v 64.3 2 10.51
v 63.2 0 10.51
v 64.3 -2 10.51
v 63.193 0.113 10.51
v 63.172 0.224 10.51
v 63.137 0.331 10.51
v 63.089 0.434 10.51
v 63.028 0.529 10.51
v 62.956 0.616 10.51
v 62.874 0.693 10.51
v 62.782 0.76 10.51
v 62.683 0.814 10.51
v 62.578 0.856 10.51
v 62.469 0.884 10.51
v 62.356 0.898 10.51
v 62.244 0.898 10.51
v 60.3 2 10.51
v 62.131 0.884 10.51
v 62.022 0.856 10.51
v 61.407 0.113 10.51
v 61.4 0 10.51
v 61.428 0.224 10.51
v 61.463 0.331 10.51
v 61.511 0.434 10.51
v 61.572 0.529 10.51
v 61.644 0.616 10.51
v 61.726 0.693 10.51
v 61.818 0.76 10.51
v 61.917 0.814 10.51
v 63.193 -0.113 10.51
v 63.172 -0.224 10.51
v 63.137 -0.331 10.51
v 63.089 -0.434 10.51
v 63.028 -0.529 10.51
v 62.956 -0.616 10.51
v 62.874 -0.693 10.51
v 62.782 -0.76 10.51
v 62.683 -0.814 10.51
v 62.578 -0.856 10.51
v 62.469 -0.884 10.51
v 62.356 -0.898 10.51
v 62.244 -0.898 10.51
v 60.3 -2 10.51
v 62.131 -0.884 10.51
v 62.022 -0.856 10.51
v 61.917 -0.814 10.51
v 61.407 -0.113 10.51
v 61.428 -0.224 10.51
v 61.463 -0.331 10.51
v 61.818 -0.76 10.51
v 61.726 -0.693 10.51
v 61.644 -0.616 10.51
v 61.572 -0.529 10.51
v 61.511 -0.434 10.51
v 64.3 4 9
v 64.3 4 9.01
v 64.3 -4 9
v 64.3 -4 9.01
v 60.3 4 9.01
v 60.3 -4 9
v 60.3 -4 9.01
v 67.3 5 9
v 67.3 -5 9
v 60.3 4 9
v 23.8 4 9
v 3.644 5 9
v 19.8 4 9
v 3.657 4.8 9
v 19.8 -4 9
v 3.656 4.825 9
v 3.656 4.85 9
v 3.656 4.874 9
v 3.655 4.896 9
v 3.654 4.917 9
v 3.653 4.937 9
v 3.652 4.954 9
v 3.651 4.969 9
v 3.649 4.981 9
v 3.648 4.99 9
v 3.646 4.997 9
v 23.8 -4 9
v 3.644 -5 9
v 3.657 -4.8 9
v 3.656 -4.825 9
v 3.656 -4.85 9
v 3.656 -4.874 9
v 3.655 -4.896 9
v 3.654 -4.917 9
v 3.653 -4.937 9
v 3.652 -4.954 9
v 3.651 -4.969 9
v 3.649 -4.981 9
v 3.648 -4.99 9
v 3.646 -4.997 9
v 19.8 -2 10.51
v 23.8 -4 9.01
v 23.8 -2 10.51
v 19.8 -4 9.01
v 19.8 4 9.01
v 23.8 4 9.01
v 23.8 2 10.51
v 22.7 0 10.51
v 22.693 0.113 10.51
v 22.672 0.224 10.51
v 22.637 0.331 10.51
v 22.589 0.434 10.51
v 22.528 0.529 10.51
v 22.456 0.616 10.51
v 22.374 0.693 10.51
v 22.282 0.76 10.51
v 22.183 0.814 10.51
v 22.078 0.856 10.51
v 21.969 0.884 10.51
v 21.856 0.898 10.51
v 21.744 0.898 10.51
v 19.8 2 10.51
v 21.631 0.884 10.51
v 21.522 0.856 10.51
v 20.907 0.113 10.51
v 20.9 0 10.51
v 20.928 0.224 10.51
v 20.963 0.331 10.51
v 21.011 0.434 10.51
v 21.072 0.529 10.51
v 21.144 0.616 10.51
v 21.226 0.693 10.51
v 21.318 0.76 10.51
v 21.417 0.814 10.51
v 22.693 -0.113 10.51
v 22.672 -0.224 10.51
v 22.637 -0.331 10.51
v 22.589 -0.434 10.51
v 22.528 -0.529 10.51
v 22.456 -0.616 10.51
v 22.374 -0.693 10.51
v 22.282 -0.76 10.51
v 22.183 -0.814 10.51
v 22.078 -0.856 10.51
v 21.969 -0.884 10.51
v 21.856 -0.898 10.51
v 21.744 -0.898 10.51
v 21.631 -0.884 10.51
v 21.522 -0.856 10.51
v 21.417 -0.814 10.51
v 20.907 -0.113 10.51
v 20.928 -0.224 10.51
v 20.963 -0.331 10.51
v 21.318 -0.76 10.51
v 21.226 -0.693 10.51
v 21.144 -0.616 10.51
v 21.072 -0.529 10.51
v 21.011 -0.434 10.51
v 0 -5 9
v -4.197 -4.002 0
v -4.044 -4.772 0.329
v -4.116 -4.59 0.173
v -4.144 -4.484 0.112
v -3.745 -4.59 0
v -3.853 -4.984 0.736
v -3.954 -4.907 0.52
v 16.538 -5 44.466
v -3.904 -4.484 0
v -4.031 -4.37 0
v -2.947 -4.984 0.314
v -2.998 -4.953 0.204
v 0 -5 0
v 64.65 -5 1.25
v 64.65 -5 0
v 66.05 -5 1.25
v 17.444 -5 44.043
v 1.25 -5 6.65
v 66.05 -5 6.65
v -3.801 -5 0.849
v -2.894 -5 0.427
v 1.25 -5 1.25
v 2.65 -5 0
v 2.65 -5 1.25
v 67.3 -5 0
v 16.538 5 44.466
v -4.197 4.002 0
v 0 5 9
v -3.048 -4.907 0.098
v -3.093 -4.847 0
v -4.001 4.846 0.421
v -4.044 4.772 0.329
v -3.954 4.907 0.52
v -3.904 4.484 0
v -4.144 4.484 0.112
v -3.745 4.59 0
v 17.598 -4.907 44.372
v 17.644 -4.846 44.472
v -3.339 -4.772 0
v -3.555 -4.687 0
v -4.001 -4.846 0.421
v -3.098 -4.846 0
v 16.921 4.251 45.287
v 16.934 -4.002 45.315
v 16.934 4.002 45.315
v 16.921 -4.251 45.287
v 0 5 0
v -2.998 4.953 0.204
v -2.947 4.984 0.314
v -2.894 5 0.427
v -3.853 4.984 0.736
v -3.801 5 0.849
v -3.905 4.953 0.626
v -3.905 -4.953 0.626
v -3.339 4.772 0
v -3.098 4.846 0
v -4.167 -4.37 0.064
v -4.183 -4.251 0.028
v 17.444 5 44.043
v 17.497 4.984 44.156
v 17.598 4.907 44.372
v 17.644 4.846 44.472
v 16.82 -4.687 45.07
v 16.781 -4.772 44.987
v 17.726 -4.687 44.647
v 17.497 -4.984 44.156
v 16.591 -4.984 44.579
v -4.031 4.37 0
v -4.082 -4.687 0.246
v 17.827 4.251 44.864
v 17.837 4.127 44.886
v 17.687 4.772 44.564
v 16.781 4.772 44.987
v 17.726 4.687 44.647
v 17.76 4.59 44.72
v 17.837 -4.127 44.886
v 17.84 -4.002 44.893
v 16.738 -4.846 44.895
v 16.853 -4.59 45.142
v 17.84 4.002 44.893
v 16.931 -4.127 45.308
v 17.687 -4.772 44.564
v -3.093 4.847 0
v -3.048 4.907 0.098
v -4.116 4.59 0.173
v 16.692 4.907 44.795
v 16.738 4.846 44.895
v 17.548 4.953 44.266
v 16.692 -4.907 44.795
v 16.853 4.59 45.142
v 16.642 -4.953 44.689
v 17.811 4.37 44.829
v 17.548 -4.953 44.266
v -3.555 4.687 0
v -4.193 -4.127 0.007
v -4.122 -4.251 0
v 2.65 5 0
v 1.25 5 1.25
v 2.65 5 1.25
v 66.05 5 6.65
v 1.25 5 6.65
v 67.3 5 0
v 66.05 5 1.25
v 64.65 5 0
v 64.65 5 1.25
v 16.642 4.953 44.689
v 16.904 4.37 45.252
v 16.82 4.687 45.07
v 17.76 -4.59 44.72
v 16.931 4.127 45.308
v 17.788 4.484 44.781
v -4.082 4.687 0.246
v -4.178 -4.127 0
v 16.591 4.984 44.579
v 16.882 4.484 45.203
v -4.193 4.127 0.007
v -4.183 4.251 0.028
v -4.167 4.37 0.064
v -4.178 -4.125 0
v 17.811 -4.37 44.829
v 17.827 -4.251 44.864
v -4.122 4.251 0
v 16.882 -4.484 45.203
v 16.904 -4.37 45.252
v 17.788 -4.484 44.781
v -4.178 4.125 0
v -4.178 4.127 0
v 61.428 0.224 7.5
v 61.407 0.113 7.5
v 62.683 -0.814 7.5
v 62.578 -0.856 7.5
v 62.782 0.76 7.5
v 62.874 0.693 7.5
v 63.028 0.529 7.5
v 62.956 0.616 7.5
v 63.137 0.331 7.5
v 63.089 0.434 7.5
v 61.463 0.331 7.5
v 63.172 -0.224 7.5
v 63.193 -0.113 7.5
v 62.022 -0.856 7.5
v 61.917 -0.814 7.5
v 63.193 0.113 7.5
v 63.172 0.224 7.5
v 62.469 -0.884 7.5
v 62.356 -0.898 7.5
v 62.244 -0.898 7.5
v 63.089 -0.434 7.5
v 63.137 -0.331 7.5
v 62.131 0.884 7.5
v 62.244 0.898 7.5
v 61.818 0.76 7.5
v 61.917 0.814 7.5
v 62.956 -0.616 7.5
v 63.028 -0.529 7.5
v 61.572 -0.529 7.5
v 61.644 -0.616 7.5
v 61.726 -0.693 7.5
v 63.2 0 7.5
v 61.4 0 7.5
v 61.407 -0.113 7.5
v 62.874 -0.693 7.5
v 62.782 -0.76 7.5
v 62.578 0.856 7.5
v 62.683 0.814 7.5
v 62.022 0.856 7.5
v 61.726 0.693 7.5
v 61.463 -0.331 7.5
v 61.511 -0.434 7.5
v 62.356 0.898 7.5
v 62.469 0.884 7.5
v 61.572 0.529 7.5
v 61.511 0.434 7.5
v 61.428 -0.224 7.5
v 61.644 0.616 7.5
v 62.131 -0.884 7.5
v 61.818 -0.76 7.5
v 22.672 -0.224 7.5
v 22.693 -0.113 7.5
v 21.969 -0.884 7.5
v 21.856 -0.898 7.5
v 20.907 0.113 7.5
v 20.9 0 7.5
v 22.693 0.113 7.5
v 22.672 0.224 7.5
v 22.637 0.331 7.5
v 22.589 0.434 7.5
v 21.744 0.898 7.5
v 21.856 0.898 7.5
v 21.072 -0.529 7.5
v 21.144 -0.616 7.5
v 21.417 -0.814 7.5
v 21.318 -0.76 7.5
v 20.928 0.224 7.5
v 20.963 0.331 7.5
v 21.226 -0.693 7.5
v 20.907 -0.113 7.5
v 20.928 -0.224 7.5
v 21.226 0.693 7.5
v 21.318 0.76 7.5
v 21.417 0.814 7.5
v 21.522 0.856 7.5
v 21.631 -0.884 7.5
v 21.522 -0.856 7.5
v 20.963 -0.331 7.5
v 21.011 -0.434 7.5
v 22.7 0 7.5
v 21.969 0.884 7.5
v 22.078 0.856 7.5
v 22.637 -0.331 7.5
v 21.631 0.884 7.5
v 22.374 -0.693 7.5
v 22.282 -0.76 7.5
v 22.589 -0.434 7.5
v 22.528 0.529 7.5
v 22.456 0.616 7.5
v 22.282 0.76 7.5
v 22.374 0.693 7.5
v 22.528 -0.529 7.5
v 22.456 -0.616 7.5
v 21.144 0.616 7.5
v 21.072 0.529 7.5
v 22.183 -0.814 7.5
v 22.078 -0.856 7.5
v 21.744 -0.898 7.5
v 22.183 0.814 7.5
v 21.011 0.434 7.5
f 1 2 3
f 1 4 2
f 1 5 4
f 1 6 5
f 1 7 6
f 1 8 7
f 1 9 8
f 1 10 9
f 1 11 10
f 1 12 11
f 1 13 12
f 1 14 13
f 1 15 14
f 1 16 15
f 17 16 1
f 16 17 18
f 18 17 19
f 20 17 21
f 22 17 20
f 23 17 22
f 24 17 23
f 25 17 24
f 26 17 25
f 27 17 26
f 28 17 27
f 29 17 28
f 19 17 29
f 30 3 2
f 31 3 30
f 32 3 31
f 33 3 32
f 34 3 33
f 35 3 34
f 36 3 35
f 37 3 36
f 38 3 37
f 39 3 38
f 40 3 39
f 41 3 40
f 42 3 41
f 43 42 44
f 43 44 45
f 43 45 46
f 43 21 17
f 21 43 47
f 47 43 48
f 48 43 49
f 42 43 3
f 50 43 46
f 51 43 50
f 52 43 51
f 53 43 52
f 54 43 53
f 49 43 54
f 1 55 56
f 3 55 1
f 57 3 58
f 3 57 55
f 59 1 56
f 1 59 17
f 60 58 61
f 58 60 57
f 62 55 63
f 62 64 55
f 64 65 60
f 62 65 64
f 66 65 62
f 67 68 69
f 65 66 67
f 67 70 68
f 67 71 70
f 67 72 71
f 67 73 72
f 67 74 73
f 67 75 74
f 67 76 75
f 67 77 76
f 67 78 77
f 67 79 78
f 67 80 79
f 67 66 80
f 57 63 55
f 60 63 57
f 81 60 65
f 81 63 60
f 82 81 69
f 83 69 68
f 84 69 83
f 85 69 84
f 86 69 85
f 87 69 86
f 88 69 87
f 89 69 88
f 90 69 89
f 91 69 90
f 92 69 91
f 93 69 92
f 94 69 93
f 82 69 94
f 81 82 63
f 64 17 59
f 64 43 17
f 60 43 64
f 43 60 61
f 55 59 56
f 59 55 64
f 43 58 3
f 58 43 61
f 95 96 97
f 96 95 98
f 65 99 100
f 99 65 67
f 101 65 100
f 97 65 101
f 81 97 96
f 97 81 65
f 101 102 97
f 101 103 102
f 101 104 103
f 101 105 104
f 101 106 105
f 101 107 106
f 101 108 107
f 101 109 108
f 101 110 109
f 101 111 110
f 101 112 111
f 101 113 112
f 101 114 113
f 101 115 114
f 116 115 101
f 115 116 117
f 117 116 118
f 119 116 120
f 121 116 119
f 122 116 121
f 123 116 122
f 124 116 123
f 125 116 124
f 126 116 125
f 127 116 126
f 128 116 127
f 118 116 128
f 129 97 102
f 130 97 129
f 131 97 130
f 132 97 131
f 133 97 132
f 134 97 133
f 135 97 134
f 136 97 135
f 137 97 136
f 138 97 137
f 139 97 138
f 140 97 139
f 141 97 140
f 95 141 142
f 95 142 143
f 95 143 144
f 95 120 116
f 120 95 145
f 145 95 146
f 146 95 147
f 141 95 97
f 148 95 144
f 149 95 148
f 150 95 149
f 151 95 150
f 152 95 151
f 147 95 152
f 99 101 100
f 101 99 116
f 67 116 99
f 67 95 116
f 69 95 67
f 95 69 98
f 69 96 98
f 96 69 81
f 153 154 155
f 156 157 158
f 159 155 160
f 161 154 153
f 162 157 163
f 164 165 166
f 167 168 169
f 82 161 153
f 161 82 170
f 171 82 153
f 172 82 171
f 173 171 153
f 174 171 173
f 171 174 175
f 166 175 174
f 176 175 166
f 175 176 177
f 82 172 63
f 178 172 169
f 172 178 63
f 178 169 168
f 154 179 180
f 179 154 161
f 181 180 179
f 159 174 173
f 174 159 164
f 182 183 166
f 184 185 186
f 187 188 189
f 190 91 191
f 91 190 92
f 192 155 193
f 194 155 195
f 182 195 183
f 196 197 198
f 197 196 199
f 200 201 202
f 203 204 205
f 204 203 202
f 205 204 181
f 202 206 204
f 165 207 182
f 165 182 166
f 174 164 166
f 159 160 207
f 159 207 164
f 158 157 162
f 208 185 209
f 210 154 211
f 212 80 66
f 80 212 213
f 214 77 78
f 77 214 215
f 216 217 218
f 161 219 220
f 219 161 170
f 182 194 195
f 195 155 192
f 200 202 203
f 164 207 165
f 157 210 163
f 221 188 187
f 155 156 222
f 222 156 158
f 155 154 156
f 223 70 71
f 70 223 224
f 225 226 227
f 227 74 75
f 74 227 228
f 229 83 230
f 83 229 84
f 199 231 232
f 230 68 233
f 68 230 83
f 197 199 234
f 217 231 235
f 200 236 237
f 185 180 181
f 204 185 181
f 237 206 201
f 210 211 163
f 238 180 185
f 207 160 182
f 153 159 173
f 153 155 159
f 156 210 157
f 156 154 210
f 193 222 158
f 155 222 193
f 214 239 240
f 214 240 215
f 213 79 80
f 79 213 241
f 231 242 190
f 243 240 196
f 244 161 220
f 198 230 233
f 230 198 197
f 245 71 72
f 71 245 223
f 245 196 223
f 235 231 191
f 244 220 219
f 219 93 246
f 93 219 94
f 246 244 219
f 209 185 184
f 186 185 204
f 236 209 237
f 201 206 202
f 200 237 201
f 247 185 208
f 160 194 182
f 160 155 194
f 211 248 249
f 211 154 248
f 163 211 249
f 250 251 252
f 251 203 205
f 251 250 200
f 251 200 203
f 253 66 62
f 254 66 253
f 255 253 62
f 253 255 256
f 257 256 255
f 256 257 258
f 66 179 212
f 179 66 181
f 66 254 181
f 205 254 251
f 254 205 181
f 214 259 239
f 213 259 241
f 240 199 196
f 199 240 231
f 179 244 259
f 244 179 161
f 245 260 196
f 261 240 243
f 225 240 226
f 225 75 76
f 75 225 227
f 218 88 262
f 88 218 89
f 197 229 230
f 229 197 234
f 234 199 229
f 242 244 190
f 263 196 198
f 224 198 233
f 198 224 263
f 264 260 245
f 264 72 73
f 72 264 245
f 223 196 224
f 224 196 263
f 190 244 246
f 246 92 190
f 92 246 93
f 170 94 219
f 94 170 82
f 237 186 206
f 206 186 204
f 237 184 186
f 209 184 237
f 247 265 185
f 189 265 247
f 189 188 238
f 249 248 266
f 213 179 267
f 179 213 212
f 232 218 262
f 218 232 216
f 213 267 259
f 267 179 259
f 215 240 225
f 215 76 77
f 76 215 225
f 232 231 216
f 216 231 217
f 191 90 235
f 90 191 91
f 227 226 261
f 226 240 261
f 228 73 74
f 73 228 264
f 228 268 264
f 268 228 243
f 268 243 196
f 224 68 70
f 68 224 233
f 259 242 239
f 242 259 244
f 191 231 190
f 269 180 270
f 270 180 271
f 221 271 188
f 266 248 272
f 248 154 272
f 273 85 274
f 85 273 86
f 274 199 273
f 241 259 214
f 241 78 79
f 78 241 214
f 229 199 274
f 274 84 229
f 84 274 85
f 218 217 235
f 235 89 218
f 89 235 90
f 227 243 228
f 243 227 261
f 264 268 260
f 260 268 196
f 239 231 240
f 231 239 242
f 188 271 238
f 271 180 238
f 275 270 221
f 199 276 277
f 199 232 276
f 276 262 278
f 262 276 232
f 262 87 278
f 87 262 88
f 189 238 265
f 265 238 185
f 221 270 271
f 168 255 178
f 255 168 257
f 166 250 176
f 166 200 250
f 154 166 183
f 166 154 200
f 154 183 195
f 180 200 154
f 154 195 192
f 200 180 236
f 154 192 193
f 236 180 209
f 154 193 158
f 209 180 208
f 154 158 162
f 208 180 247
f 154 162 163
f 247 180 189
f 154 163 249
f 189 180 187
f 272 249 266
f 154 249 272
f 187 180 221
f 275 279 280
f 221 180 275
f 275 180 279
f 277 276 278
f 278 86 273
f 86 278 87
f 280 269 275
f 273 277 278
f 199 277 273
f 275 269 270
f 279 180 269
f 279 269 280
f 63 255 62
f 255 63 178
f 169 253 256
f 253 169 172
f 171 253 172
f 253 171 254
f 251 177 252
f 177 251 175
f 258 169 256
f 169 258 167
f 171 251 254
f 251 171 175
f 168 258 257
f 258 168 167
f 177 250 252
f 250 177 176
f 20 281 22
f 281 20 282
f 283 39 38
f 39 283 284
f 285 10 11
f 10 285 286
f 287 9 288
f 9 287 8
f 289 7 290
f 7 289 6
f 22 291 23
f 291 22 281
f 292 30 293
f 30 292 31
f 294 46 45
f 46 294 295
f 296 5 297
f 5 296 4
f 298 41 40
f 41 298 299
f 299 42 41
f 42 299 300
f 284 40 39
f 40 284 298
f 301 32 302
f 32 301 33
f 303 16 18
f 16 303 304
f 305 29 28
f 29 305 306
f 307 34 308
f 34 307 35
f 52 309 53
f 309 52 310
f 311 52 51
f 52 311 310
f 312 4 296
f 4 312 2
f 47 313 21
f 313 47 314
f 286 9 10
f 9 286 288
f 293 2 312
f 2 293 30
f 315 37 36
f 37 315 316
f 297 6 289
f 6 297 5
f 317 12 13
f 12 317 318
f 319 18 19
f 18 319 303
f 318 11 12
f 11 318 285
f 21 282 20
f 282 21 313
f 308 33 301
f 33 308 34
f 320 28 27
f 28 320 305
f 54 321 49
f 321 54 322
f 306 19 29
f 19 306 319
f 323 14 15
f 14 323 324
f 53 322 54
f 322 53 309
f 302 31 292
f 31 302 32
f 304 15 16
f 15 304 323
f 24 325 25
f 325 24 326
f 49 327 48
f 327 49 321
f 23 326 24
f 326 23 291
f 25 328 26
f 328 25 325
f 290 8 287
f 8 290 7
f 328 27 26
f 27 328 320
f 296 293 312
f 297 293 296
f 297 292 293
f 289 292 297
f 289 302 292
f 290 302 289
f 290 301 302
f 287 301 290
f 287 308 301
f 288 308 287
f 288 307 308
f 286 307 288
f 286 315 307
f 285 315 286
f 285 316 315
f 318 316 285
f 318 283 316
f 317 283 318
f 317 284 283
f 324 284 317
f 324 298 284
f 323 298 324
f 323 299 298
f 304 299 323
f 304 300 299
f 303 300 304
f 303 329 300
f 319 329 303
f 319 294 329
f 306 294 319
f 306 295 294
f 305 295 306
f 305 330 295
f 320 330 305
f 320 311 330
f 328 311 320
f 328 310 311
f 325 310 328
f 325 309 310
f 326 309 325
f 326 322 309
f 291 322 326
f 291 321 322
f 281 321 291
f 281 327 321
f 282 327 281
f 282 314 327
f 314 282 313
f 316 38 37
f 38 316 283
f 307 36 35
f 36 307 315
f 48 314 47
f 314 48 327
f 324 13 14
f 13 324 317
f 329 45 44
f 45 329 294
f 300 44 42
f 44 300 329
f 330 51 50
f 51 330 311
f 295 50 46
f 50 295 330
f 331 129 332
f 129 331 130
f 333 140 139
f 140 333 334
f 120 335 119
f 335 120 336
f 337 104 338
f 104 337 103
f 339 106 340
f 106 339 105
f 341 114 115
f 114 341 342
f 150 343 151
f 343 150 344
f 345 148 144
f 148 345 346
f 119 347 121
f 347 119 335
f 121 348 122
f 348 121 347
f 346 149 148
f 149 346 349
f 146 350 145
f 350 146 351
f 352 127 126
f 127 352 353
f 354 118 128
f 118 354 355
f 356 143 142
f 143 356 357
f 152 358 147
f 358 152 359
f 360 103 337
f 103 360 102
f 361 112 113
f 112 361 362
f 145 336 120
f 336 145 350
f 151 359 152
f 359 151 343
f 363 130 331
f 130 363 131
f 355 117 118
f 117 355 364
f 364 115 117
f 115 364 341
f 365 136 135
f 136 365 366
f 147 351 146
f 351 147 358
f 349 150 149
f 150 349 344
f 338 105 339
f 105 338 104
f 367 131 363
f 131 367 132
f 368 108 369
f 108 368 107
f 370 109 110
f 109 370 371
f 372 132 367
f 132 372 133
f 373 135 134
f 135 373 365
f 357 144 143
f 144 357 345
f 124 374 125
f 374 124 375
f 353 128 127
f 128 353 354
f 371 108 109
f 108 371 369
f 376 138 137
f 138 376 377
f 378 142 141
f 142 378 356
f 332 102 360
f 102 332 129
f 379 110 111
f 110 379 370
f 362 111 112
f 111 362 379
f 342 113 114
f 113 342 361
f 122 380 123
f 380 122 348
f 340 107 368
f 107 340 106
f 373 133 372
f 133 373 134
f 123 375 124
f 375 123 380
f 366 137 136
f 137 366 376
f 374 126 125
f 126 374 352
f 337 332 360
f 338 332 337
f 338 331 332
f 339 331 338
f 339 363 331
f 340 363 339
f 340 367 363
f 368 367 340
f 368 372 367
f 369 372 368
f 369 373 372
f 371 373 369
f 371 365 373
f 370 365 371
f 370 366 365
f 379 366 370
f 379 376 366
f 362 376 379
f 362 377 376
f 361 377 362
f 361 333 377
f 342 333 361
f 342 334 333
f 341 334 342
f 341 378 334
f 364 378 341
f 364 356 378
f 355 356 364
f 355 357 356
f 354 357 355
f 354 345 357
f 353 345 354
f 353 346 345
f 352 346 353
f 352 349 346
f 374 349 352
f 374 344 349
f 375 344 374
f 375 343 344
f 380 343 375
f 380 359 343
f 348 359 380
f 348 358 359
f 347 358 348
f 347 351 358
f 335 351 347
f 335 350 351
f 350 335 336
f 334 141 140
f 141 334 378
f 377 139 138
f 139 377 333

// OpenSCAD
// file: modules/scad-utils/mirror.scad
// Copyright (c) 2013 Oskar Linde. All rights reserved.
// License: BSD
//
// This library contains simple mirroring functions
//
// mirror_x()
// mirror_y()
// mirror_z()


module mirror_x() {
  union() {
    child();
    scale([-1,1,1]) child();
  }
}

module mirror_y() {
  union() {
    child();
    scale([1,-1,1]) child();
  }
}

module mirror_z() {
  union() {
    child();
    scale([1,1,-1]) child();
  }
}
// file: scad-utils/mirror.scad
// Laser Tunnel -- Angled Mirror Holder
// Adrian McCarthy 2022

// A larger angle makes a wider cone of light. (degrees)
Angle = 5; // [3:1:20]

// The mirror should not be wider than the hub of the fan. (mm)
Mirror_Diameter = 25.4; // [20:0.2:27]

// The mirror should be thin and light. (mm)
Mirror_Thickness = 1.75; // [1:0.25:2]

// Some dimensions may be optimized for your printer's nozzle size, but the default value should work for most. (mm)
Nozzle_Diameter = 0.4;  // [0.1:0.1:0.8]

module angled_mirror_holder(angle=5, mirror_d=25.4, mirror_th=1.75, nozzle_d=0.4) {
    h = mirror_d;
    inner_d = mirror_d + nozzle_d;
    outer_d = inner_d + 2;
    box = sqrt(2)*outer_d;
    intersection() {
        r = inner_d/2;
        translate([r, 0, 0]) rotate([0, angle, 0]) translate([-r, 0, 0])
        difference() {
            translate([0, 0, mirror_th-h]) cylinder(d=outer_d, h=h);
            translate([0, 0, 0.1]) cylinder(d=inner_d, h=h);
        }

        translate([-box/2, -box/2, 0]) cube(box);
    }
}

angled_mirror_holder(Angle, Mirror_Diameter, Mirror_Thickness, Nozzle_Diameter, $fn=92);
// file: modules/opiz_mount.scad
include <scad-utils/mirror.scad>

include <./lcd_holder_base.scad>

OPIZ_HOLES_BETWEEN_X=40.5;
OPIZ_HOLES_BETWEEN_Y=42;

OPIZ_MOUNT_X=4;
OPIZ_MOUNT_Z=1.5;
OPIZ_MOUNT_Y=OPIZ_MOUNT_X+4;

module opiz_mount_holes() {
  mirror_x()
  translate([OPIZ_HOLES_BETWEEN_X/2, 0, -1.5]) 
  cylinder(d=1.8, h=10, center=!true);
}

module opiz_mount_base() {
  mirror_x()
  translate([OPIZ_HOLES_BETWEEN_X/2, 0, 0]){
    // trapezoid
    hull(){
      // top
      translate([0, 0, OPIZ_MOUNT_Z])
      linear_extrude(height=0.01, center=!true, convexity=10, twist=0)
      square(size=[OPIZ_MOUNT_X, OPIZ_MOUNT_X], center=true);

      // bottom
      linear_extrude(height=0.01, center=!true, convexity=10, twist=0)
      square(size=[OPIZ_MOUNT_X, OPIZ_MOUNT_Y], center=true);
    }
  }
}

module opiz_mount(holes=false) {
  translate([-OPIZ_HOLES_BETWEEN_X/2 - OPIZ_MOUNT_X/2 + HOLDER_X - 3, 0, HOLDER_Z])
  if (holes){
    opiz_mount_holes();
  }else{
    opiz_mount_base();
  }
}
// file: modules/lcd_holder_base.scad
include <./lcd.scad>

HOLDER_X=LCD_X+3;
HOLDER_Y=10;
HOLDER_Z=9;
HOLDER_LCD_BOTTOM_T=1.5;
HOLDER_FRONT_T=1.5;

module holder_base() {
  translate([HOLDER_X/2, 0, HOLDER_Z/2]) 
  cube(size=[HOLDER_X, HOLDER_Y, HOLDER_Z], center=true);
}

module holder_diff() {
  // space for LCD
  translate([HOLDER_LCD_BOTTOM_T, 0, HOLDER_FRONT_T]) 
  lcd(0.5);

  // window for LCD
  LCD_CENTER_X=LCD_X/2 + HOLDER_LCD_BOTTOM_T;
  translate([LCD_CENTER_X, 0, 0]) 
  cube(size=[LCD_DISP_X+4, HOLDER_Y*2, 3], center=true);
}
// file: modules/lcd.scad
LCD_X=64.3;
LCD_Y=232.0;
LCD_Z=4.9;
LCD_DISP_X=58;

module lcd(margin=0, draw_display_region=false) {
  translate([LCD_X/2, 0, LCD_Z/2]){
    cube(size=[LCD_X+margin, LCD_Y+margin, LCD_Z+margin], center=true);

    if(draw_display_region){
      translate([0, -2, 0]) 
      color("green", 0.5)
      cube(size=[LCD_DISP_X, LCD_Y-8, LCD_Z], center=true);
    }
  }
}
// file: scad-utils/morphology.scad
// Copyright (c) 2013 Oskar Linde. All rights reserved.
// License: BSD
//
// This library contains basic 2D morphology operations
//
// outset(d=1)            - creates a polygon at an offset d outside a 2D shape
// inset(d=1)             - creates a polygon at an offset d inside a 2D shape
// fillet(r=1)            - adds fillets of radius r to all concave corners of a 2D shape
// rounding(r=1)          - adds rounding to all convex corners of a 2D shape
// shell(d,center=false)  - makes a shell of width d along the edge of a 2D shape
//                        - positive values of d places the shell on the outside
//                        - negative values of d places the shell on the inside
//                        - center=true and positive d places the shell centered on the edge

module outset(d=1) {
	// Bug workaround for older OpenSCAD versions
	if (version_num() < 20130424) render() outset_extruded(d) children();
	else minkowski() {
		circle(r=d);
		children();
	}
}

module outset_extruded(d=1) {
   projection(cut=true) minkowski() {
        cylinder(r=d);
        linear_extrude(center=true) children();
   }
}

module inset(d=1) {
	 render() inverse() outset(d=d) inverse() children();
}

module fillet(r=1) {
	inset(d=r) render() outset(d=r) children();
}

module rounding(r=1) {
	outset(d=r) inset(d=r) children();
}

module shell(d,center=false) {
	if (center && d > 0) {
		difference() {
			outset(d=d/2) children();
			inset(d=d/2) children();
		}
	}
	if (!center && d > 0) {
		difference() {
			outset(d=d) children();
			children();
		}
	}
	if (!center && d < 0) {
		difference() {
			children();
			inset(d=-d) children();
		}
	}
	if (d == 0) children();
}


// Below are for internal use only

module inverse() {
	difference() {
		square(1e5,center=true);
		children();
	}
}


// TEST CODE

use <mirror.scad>

module arrow(l=1,w=.6,t=0.15) {
	mirror_y() polygon([[0,0],[l,0],[l-w/2,w/2],[l-w/2-sqrt(2)*t,w/2],[l-t/2-sqrt(2)*t,t/2],[0,t/2]]);
}

module shape() {
	polygon([[0,0],[1,0],[1.5,1],[2.5,1],[2,-1],[0,-1]]);
}

if(0) assign($fn=32) {

	for (p = [0:10*3-1]) assign(o=floor(p/3)) {
		translate([(p%3)*2.5,-o*3]) {
			//%if (p % 3 == 1) translate([0,0,1]) shape();
			if (p % 3 == 0) shape();
			if (p % 3 == 1) translate([0.6,0]) arrow();
			if (p % 3 == 2) {
				if (o == 0) inset(d=0.3) shape();
				if (o == 1) outset(d=0.3) shape();
				if (o == 2) rounding(r=0.3) shape();
				if (o == 3) fillet(r=0.3) shape();
				if (o == 4) shell(d=0.3) shape();
				if (o == 5) shell(d=-0.3) shape();
				if (o == 6) shell(d=0.3,center=true) shape();
				if (o == 7) rounding(r=0.3) fillet(r=0.3) shape();
				if (o == 8) shell(d=0.3,center=true) fillet(r=0.3) rounding(r=0.3) shape();
				if (o == 9) shell(d=-0.3) fillet(r=0.3) rounding(r=0.3) shape();
			}
		}
	}
}
// file: _landscapi_stand_base.scad
include <scad-utils/morphology.scad>

include <./modules/lcd.scad>
include <./modules/lcd_holder_base.scad>
include <./modules/opiz_mount.scad>

STAND_X=50;
STAND_Y=HOLDER_Y;
STAND_Z_MIN=1;

module stand(deg) {
  hull() {
    // plane for hull
    translate([0.1/2, 0, HOLDER_Z/2]) 
    cube(size=[0.1, HOLDER_Y, HOLDER_Z], center=true);

    // stand body
    difference(){
      translate([-tan(90-deg) * HOLDER_Z , 0, 0]) 
      rotate([0, 180 - deg, 0]) 
      translate([-STAND_X/2, 0, 0]) 
      linear_extrude(height=STAND_Z_MIN, center=!true, convexity=10, twist=0)
      rounding(r=1)
      square(size=[STAND_X, STAND_Y], center=true);

      // flatten with XY plane
      translate([0, 0, -10/2]) 
      cube(size=[100, STAND_Y+1, 10], center=true);
    } 
  }
}

module landscapi_stand_base(stand_deg=75) {
  difference(){
    union(){
      stand(deg=stand_deg);
      holder_base();

      // Orange Pi Zero mount
      opiz_mount();
    }

    holder_diff();

    // Orange Pi Zero mount (screw holes)
    opiz_mount(holes=true);
  }
}
// main file
include <./_landscapi_stand_base.scad>

$fn=50;

DEG=65;

// LCD
%
translate([HOLDER_LCD_BOTTOM_T, 0, HOLDER_FRONT_T]) 
lcd(margin=0, draw_display_region=true);

landscapi_stand_base(stand_deg=DEG);
